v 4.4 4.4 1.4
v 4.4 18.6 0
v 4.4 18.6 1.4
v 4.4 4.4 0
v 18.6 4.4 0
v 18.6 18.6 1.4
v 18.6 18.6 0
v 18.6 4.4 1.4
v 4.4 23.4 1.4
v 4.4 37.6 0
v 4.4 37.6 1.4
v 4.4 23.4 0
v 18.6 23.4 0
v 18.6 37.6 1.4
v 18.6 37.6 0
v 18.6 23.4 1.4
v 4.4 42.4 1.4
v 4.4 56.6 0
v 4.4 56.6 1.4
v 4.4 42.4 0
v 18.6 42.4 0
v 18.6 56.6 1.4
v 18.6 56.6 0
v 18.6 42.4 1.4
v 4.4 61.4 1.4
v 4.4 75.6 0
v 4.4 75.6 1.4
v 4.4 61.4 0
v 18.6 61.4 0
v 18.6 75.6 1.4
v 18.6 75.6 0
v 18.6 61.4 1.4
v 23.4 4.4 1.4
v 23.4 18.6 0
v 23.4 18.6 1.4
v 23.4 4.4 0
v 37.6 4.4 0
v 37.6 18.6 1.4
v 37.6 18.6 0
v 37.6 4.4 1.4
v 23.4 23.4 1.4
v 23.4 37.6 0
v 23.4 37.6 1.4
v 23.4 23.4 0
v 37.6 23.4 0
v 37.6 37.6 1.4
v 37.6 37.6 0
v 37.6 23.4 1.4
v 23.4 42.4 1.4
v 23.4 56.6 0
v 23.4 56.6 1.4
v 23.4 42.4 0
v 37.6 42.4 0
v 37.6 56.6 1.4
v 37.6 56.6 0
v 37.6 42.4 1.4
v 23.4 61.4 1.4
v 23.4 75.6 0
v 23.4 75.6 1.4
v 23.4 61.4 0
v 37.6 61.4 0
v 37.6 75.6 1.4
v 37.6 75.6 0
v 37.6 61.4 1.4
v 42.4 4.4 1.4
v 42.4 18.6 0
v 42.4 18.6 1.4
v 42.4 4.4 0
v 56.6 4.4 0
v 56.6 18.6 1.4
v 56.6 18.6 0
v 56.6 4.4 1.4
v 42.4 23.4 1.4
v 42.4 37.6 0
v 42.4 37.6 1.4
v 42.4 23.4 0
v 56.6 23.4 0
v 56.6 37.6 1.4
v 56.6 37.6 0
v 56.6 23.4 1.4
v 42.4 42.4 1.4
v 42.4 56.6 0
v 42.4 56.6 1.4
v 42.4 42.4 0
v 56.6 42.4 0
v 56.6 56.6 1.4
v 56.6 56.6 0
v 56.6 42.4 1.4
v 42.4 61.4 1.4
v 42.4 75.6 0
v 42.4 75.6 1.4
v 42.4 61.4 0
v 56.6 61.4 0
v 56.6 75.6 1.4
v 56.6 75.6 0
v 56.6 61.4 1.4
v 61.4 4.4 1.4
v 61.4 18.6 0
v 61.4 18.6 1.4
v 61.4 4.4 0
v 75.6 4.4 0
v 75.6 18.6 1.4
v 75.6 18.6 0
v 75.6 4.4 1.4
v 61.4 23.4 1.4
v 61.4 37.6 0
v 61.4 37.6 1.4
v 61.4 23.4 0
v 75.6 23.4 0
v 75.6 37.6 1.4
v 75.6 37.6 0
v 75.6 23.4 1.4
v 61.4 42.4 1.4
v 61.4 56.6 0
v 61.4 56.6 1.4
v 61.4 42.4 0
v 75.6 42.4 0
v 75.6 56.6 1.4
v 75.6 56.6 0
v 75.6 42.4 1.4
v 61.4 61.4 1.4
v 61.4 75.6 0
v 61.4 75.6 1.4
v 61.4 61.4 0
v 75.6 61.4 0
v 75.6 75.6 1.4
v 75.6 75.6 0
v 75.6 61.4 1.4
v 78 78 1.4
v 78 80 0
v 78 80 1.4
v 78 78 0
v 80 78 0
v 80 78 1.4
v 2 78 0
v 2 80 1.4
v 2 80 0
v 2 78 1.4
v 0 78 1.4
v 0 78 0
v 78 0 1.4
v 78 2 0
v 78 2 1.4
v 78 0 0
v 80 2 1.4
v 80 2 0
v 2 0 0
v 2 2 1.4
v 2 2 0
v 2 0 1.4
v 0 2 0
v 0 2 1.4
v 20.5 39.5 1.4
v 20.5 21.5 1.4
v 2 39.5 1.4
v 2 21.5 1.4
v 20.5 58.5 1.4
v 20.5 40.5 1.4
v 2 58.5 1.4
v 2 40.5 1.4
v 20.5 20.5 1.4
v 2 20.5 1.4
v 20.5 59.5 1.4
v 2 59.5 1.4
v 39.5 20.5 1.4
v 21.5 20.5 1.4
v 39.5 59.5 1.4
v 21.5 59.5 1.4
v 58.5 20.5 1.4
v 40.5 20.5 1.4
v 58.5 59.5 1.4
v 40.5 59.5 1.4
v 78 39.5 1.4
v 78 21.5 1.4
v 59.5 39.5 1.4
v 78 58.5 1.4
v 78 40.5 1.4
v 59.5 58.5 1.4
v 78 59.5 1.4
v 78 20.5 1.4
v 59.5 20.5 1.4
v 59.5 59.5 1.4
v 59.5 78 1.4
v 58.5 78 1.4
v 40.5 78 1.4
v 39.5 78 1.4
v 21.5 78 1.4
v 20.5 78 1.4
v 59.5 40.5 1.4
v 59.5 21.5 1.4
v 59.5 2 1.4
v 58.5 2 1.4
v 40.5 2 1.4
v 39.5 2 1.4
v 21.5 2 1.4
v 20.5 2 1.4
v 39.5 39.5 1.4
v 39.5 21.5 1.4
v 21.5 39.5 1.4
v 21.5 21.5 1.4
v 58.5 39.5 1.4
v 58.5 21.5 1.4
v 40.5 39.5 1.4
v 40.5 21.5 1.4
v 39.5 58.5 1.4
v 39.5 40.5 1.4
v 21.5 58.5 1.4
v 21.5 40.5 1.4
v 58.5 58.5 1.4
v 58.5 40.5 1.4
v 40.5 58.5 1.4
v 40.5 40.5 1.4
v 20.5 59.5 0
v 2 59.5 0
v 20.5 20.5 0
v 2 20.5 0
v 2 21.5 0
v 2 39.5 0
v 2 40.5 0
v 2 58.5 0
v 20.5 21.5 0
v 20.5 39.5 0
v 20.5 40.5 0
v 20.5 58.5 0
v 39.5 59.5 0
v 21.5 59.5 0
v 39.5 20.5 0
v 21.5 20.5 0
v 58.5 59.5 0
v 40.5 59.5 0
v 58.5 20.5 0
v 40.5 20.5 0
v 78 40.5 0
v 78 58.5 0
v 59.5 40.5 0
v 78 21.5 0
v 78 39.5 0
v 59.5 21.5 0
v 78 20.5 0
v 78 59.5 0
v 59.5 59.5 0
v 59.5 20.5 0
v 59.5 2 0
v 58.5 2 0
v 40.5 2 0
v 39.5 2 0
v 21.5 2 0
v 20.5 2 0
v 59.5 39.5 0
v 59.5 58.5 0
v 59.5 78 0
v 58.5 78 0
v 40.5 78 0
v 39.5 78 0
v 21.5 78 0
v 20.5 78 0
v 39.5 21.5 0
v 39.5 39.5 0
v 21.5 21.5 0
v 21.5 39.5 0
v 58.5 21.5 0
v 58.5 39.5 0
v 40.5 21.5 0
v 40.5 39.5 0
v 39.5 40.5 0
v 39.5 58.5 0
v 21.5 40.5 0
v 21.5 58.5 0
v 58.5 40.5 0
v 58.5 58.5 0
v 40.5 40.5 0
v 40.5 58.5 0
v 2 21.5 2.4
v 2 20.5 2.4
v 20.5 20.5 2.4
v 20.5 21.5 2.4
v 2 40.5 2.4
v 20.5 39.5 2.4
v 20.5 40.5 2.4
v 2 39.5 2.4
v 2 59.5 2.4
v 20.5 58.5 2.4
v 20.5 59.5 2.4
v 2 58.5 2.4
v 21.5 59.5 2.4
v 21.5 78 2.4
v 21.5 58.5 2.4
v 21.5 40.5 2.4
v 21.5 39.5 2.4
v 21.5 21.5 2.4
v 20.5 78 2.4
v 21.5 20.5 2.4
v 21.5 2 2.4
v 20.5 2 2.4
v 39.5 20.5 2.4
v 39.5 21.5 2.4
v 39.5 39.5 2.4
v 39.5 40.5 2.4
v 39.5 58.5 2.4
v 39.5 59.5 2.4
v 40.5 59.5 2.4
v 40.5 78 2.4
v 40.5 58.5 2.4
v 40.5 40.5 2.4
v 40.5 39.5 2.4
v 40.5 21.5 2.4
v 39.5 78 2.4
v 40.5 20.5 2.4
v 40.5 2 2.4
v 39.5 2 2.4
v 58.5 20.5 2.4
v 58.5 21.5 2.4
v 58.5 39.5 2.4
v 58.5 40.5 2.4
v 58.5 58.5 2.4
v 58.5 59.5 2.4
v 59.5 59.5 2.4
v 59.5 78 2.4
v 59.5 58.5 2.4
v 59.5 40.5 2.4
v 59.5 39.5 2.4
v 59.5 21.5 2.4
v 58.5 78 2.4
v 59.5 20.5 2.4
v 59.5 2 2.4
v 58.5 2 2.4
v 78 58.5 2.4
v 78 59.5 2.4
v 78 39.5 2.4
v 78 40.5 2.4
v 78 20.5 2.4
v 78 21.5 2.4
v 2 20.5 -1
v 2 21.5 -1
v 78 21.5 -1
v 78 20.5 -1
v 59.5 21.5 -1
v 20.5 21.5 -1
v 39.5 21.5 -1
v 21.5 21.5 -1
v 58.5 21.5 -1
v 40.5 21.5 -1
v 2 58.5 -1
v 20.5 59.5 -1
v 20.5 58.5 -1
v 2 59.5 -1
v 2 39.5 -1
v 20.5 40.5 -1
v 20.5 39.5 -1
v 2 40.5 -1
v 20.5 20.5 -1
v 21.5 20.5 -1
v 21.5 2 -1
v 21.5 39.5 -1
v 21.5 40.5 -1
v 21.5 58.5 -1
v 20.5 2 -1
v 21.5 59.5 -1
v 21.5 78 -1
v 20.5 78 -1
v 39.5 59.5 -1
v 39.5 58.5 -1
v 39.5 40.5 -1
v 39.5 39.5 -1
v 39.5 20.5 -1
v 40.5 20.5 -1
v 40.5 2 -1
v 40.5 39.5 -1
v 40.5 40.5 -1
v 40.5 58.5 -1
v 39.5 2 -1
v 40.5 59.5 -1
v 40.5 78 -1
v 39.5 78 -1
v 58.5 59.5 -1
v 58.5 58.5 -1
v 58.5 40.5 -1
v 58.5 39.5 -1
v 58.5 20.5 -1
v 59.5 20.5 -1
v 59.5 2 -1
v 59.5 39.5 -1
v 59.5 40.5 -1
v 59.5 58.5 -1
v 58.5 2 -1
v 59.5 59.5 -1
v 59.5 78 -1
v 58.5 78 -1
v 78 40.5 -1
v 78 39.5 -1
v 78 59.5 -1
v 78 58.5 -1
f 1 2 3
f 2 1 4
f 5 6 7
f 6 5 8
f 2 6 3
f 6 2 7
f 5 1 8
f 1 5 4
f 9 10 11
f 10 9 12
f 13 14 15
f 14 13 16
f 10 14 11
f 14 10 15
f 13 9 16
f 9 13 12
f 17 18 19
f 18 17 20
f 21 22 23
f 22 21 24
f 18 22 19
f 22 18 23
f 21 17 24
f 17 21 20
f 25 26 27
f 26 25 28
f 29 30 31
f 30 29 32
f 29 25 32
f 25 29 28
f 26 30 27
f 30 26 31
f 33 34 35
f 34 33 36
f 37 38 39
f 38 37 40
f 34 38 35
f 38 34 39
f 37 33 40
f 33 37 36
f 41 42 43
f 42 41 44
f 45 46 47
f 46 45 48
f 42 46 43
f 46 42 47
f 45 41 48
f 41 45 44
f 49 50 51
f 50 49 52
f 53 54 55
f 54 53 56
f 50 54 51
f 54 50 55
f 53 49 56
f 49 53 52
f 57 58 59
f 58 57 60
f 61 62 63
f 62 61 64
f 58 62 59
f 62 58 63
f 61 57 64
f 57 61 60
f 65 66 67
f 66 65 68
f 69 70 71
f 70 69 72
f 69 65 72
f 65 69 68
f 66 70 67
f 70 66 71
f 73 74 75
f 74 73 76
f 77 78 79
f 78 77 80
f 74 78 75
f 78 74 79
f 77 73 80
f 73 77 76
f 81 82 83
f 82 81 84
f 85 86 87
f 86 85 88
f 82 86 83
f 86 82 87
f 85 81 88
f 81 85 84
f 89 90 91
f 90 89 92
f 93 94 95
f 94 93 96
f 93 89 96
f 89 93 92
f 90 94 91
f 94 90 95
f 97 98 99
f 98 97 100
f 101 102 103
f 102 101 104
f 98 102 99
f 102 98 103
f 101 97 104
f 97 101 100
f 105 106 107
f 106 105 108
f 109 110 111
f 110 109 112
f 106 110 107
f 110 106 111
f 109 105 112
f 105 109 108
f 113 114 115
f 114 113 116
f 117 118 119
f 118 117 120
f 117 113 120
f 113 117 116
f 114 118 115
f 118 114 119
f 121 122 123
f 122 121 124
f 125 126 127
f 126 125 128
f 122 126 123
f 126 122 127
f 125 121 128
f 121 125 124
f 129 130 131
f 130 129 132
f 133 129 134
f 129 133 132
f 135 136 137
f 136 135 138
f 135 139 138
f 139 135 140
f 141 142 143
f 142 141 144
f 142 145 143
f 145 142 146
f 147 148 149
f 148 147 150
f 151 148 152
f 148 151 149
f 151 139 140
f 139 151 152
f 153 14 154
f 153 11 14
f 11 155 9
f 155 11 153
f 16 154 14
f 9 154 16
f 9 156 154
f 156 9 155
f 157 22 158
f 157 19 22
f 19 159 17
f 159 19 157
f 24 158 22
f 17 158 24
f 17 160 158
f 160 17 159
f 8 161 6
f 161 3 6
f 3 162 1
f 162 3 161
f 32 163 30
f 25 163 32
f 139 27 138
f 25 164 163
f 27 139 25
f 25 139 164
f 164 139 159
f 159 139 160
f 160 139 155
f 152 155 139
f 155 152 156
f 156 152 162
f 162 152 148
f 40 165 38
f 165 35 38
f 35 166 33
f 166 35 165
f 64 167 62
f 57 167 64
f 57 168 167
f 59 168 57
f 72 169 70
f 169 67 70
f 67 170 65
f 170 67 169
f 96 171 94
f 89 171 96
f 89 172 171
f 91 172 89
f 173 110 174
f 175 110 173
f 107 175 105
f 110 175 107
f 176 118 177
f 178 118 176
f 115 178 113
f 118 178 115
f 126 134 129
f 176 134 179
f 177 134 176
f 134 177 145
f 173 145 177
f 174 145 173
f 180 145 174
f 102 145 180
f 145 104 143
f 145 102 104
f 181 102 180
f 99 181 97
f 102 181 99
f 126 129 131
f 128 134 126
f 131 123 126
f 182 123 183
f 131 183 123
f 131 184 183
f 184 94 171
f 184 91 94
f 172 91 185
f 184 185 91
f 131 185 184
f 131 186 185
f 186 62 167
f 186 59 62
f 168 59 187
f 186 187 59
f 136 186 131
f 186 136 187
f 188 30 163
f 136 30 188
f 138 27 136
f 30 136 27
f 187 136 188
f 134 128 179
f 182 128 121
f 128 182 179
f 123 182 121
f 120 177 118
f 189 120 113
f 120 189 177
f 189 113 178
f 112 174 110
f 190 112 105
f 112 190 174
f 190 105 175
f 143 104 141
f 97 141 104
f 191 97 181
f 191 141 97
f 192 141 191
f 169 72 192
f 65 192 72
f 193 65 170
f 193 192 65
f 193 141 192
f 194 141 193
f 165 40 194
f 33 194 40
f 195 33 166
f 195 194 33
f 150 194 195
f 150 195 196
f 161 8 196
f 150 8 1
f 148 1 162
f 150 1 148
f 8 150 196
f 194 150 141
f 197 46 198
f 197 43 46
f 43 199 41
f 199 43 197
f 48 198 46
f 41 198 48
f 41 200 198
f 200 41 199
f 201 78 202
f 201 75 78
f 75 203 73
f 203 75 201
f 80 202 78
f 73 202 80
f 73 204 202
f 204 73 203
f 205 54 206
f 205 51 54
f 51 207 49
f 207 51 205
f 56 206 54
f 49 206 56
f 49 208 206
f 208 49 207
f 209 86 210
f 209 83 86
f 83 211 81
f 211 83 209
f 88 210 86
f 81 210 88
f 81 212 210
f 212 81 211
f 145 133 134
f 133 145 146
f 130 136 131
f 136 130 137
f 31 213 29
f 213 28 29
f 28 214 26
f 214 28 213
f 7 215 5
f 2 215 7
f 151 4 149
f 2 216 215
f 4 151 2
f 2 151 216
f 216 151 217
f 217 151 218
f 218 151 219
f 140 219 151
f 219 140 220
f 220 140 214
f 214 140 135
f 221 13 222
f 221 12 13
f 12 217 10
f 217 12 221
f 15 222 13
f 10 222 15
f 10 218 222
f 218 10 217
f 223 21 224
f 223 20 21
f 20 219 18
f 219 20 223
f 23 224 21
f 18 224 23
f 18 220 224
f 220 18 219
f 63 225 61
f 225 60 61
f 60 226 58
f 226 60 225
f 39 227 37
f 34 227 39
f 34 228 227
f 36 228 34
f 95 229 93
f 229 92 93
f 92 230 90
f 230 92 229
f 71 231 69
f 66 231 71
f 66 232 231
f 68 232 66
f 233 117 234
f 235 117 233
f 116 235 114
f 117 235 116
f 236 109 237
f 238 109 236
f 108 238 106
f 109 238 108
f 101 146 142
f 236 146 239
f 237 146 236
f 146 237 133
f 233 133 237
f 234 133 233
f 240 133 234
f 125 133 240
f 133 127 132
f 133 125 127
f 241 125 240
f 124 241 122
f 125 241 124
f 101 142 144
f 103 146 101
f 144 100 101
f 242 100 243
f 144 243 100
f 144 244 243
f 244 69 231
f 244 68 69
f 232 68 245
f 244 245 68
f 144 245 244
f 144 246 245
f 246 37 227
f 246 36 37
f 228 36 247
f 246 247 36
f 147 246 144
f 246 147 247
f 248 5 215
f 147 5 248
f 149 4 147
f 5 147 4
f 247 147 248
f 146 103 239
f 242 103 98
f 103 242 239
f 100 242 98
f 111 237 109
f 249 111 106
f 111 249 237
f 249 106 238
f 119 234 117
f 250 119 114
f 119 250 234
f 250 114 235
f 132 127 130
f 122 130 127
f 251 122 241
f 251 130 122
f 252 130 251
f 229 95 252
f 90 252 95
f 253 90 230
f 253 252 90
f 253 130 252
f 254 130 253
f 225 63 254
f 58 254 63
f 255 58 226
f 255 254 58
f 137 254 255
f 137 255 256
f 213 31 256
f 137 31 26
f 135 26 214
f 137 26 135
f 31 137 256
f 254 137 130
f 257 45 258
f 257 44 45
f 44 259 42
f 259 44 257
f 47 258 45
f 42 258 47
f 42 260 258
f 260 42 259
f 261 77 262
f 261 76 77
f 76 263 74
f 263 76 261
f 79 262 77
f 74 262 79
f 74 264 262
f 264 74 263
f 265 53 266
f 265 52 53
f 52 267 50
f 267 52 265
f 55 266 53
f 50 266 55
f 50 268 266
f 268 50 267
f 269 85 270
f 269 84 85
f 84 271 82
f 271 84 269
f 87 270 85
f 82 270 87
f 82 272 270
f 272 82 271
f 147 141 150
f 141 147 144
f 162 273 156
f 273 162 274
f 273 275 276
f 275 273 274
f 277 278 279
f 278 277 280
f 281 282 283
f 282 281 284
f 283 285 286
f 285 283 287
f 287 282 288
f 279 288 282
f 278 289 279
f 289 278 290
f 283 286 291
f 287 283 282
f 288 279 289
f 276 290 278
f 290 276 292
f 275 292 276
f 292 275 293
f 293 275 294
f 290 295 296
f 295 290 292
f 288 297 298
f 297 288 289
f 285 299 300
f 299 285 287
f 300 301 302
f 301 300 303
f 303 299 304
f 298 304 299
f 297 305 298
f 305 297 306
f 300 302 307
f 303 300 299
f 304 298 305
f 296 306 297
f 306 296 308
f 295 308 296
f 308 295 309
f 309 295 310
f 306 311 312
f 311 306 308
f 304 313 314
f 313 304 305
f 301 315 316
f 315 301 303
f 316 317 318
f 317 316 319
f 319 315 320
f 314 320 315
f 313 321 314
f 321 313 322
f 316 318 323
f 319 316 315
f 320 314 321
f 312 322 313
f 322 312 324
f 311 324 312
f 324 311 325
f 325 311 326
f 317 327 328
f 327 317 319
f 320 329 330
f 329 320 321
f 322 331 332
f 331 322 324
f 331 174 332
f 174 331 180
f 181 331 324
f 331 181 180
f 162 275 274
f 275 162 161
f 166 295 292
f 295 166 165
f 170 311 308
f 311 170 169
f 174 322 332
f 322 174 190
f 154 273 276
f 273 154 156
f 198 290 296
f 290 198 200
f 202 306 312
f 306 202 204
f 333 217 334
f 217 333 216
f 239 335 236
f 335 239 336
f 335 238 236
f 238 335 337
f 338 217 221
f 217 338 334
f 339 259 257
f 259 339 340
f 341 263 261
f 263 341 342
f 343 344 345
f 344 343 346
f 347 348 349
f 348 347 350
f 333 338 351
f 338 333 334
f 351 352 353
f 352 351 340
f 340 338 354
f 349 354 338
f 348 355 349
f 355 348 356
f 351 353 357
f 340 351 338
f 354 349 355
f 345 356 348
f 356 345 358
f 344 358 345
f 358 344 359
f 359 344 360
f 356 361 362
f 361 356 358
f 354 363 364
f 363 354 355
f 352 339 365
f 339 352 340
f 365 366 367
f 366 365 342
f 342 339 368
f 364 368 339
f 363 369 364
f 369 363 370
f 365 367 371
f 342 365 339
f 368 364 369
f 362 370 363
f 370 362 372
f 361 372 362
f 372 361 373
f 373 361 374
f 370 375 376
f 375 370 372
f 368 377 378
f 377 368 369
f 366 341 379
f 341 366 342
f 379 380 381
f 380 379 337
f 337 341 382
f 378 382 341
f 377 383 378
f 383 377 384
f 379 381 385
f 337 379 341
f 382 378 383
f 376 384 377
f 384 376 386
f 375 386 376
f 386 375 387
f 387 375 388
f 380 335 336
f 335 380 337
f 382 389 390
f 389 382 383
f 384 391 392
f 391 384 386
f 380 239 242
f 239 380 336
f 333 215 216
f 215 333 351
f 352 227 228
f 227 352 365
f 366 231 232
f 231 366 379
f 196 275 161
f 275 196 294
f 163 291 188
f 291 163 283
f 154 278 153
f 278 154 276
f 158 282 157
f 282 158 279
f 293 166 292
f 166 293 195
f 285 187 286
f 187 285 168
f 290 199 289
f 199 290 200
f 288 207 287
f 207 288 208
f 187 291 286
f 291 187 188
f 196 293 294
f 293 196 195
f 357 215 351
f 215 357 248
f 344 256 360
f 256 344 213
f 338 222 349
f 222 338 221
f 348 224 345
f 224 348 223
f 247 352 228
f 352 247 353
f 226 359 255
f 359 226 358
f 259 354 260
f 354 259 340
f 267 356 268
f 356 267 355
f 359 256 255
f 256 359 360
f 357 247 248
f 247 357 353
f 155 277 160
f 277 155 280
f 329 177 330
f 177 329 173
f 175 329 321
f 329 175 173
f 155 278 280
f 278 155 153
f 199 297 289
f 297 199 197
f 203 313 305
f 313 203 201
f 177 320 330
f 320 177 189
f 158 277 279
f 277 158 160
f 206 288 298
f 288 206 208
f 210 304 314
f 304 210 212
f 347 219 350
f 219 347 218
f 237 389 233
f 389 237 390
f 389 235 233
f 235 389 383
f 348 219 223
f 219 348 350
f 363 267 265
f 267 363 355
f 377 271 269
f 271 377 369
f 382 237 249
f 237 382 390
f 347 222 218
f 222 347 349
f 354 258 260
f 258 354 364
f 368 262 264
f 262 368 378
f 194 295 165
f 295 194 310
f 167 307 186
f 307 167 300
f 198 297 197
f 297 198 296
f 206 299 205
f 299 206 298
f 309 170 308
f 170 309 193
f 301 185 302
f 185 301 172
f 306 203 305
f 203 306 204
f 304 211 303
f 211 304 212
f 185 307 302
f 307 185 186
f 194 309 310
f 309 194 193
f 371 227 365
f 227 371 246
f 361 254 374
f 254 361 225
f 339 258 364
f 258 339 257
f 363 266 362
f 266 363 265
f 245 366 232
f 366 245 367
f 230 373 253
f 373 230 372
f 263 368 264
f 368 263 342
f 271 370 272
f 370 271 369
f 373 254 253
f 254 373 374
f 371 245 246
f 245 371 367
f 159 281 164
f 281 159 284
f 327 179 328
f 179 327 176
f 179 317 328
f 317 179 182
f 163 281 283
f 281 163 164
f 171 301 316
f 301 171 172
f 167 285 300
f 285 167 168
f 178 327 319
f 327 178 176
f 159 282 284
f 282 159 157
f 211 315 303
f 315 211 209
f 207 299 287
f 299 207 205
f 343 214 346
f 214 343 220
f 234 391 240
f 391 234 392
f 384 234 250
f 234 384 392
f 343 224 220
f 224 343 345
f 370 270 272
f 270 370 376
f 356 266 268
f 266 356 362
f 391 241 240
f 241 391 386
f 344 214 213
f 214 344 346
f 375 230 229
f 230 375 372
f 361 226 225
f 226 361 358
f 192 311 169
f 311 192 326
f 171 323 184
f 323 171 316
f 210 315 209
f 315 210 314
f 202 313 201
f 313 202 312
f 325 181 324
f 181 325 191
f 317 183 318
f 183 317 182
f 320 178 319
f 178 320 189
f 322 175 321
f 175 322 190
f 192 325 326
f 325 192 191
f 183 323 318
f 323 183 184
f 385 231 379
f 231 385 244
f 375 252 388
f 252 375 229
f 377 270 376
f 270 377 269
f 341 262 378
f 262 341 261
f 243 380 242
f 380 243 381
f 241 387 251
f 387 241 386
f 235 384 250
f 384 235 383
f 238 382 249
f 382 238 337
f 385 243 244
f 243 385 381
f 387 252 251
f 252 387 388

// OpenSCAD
// file: utils/mirror_copy.scad
// https://en.wikibooks.org/wiki/OpenSCAD_User_Manual/Tips_and_Tricks
module mirror_copy(v = [1, 0, 0]) {
    children();
    mirror(v) children();
}
// main file
use <utils/mirror_copy.scad>

module plate(thickness, matrixSize, switchSize, borderSize, spacing) {
    size = matrixSize*spacing+borderSize*2;
    union() {
        difference() {
            cube([size, size, thickness]);
            translate([
                borderSize+(spacing-switchSize)/2,
                borderSize+(spacing-switchSize)/2,
                -0.5
            ]) {
                for (i = [0 : 1 : matrixSize-1]) {
                    for (j = [0 : 1 : matrixSize-1]) {
                        translate([spacing*i, spacing*j, 0])
                            color("red")
                            cube([switchSize, switchSize, thickness+1]);
                    }
                }
            }
            translate([size/2, size/2, 0])
                mirror_copy([0, 1, 0])
                    mirror_copy([1, 0, 0])
                        translate([size/2, size/2, thickness/2])
                            cube([borderSize*2, borderSize*2, thickness+1], true);
        }
        
        for (i = [1 : 1 : matrixSize-1]) {
            translate([borderSize, spacing*i+borderSize-0.5, thickness])
                    cube([size-borderSize*2, 1, 1]);
            translate([borderSize, spacing*i+borderSize-0.5, -1])
                    cube([size-borderSize*2, 1, 1]);
            translate([spacing*i+borderSize-0.5, borderSize, thickness])
                cube([1, size-borderSize*2, 1]);
            translate([spacing*i+borderSize-0.5, borderSize, -1])
                cube([1, size-borderSize*2, 1]);
        }
    }        
}

plate(1.4, 4, 14.2, 2, 19);
